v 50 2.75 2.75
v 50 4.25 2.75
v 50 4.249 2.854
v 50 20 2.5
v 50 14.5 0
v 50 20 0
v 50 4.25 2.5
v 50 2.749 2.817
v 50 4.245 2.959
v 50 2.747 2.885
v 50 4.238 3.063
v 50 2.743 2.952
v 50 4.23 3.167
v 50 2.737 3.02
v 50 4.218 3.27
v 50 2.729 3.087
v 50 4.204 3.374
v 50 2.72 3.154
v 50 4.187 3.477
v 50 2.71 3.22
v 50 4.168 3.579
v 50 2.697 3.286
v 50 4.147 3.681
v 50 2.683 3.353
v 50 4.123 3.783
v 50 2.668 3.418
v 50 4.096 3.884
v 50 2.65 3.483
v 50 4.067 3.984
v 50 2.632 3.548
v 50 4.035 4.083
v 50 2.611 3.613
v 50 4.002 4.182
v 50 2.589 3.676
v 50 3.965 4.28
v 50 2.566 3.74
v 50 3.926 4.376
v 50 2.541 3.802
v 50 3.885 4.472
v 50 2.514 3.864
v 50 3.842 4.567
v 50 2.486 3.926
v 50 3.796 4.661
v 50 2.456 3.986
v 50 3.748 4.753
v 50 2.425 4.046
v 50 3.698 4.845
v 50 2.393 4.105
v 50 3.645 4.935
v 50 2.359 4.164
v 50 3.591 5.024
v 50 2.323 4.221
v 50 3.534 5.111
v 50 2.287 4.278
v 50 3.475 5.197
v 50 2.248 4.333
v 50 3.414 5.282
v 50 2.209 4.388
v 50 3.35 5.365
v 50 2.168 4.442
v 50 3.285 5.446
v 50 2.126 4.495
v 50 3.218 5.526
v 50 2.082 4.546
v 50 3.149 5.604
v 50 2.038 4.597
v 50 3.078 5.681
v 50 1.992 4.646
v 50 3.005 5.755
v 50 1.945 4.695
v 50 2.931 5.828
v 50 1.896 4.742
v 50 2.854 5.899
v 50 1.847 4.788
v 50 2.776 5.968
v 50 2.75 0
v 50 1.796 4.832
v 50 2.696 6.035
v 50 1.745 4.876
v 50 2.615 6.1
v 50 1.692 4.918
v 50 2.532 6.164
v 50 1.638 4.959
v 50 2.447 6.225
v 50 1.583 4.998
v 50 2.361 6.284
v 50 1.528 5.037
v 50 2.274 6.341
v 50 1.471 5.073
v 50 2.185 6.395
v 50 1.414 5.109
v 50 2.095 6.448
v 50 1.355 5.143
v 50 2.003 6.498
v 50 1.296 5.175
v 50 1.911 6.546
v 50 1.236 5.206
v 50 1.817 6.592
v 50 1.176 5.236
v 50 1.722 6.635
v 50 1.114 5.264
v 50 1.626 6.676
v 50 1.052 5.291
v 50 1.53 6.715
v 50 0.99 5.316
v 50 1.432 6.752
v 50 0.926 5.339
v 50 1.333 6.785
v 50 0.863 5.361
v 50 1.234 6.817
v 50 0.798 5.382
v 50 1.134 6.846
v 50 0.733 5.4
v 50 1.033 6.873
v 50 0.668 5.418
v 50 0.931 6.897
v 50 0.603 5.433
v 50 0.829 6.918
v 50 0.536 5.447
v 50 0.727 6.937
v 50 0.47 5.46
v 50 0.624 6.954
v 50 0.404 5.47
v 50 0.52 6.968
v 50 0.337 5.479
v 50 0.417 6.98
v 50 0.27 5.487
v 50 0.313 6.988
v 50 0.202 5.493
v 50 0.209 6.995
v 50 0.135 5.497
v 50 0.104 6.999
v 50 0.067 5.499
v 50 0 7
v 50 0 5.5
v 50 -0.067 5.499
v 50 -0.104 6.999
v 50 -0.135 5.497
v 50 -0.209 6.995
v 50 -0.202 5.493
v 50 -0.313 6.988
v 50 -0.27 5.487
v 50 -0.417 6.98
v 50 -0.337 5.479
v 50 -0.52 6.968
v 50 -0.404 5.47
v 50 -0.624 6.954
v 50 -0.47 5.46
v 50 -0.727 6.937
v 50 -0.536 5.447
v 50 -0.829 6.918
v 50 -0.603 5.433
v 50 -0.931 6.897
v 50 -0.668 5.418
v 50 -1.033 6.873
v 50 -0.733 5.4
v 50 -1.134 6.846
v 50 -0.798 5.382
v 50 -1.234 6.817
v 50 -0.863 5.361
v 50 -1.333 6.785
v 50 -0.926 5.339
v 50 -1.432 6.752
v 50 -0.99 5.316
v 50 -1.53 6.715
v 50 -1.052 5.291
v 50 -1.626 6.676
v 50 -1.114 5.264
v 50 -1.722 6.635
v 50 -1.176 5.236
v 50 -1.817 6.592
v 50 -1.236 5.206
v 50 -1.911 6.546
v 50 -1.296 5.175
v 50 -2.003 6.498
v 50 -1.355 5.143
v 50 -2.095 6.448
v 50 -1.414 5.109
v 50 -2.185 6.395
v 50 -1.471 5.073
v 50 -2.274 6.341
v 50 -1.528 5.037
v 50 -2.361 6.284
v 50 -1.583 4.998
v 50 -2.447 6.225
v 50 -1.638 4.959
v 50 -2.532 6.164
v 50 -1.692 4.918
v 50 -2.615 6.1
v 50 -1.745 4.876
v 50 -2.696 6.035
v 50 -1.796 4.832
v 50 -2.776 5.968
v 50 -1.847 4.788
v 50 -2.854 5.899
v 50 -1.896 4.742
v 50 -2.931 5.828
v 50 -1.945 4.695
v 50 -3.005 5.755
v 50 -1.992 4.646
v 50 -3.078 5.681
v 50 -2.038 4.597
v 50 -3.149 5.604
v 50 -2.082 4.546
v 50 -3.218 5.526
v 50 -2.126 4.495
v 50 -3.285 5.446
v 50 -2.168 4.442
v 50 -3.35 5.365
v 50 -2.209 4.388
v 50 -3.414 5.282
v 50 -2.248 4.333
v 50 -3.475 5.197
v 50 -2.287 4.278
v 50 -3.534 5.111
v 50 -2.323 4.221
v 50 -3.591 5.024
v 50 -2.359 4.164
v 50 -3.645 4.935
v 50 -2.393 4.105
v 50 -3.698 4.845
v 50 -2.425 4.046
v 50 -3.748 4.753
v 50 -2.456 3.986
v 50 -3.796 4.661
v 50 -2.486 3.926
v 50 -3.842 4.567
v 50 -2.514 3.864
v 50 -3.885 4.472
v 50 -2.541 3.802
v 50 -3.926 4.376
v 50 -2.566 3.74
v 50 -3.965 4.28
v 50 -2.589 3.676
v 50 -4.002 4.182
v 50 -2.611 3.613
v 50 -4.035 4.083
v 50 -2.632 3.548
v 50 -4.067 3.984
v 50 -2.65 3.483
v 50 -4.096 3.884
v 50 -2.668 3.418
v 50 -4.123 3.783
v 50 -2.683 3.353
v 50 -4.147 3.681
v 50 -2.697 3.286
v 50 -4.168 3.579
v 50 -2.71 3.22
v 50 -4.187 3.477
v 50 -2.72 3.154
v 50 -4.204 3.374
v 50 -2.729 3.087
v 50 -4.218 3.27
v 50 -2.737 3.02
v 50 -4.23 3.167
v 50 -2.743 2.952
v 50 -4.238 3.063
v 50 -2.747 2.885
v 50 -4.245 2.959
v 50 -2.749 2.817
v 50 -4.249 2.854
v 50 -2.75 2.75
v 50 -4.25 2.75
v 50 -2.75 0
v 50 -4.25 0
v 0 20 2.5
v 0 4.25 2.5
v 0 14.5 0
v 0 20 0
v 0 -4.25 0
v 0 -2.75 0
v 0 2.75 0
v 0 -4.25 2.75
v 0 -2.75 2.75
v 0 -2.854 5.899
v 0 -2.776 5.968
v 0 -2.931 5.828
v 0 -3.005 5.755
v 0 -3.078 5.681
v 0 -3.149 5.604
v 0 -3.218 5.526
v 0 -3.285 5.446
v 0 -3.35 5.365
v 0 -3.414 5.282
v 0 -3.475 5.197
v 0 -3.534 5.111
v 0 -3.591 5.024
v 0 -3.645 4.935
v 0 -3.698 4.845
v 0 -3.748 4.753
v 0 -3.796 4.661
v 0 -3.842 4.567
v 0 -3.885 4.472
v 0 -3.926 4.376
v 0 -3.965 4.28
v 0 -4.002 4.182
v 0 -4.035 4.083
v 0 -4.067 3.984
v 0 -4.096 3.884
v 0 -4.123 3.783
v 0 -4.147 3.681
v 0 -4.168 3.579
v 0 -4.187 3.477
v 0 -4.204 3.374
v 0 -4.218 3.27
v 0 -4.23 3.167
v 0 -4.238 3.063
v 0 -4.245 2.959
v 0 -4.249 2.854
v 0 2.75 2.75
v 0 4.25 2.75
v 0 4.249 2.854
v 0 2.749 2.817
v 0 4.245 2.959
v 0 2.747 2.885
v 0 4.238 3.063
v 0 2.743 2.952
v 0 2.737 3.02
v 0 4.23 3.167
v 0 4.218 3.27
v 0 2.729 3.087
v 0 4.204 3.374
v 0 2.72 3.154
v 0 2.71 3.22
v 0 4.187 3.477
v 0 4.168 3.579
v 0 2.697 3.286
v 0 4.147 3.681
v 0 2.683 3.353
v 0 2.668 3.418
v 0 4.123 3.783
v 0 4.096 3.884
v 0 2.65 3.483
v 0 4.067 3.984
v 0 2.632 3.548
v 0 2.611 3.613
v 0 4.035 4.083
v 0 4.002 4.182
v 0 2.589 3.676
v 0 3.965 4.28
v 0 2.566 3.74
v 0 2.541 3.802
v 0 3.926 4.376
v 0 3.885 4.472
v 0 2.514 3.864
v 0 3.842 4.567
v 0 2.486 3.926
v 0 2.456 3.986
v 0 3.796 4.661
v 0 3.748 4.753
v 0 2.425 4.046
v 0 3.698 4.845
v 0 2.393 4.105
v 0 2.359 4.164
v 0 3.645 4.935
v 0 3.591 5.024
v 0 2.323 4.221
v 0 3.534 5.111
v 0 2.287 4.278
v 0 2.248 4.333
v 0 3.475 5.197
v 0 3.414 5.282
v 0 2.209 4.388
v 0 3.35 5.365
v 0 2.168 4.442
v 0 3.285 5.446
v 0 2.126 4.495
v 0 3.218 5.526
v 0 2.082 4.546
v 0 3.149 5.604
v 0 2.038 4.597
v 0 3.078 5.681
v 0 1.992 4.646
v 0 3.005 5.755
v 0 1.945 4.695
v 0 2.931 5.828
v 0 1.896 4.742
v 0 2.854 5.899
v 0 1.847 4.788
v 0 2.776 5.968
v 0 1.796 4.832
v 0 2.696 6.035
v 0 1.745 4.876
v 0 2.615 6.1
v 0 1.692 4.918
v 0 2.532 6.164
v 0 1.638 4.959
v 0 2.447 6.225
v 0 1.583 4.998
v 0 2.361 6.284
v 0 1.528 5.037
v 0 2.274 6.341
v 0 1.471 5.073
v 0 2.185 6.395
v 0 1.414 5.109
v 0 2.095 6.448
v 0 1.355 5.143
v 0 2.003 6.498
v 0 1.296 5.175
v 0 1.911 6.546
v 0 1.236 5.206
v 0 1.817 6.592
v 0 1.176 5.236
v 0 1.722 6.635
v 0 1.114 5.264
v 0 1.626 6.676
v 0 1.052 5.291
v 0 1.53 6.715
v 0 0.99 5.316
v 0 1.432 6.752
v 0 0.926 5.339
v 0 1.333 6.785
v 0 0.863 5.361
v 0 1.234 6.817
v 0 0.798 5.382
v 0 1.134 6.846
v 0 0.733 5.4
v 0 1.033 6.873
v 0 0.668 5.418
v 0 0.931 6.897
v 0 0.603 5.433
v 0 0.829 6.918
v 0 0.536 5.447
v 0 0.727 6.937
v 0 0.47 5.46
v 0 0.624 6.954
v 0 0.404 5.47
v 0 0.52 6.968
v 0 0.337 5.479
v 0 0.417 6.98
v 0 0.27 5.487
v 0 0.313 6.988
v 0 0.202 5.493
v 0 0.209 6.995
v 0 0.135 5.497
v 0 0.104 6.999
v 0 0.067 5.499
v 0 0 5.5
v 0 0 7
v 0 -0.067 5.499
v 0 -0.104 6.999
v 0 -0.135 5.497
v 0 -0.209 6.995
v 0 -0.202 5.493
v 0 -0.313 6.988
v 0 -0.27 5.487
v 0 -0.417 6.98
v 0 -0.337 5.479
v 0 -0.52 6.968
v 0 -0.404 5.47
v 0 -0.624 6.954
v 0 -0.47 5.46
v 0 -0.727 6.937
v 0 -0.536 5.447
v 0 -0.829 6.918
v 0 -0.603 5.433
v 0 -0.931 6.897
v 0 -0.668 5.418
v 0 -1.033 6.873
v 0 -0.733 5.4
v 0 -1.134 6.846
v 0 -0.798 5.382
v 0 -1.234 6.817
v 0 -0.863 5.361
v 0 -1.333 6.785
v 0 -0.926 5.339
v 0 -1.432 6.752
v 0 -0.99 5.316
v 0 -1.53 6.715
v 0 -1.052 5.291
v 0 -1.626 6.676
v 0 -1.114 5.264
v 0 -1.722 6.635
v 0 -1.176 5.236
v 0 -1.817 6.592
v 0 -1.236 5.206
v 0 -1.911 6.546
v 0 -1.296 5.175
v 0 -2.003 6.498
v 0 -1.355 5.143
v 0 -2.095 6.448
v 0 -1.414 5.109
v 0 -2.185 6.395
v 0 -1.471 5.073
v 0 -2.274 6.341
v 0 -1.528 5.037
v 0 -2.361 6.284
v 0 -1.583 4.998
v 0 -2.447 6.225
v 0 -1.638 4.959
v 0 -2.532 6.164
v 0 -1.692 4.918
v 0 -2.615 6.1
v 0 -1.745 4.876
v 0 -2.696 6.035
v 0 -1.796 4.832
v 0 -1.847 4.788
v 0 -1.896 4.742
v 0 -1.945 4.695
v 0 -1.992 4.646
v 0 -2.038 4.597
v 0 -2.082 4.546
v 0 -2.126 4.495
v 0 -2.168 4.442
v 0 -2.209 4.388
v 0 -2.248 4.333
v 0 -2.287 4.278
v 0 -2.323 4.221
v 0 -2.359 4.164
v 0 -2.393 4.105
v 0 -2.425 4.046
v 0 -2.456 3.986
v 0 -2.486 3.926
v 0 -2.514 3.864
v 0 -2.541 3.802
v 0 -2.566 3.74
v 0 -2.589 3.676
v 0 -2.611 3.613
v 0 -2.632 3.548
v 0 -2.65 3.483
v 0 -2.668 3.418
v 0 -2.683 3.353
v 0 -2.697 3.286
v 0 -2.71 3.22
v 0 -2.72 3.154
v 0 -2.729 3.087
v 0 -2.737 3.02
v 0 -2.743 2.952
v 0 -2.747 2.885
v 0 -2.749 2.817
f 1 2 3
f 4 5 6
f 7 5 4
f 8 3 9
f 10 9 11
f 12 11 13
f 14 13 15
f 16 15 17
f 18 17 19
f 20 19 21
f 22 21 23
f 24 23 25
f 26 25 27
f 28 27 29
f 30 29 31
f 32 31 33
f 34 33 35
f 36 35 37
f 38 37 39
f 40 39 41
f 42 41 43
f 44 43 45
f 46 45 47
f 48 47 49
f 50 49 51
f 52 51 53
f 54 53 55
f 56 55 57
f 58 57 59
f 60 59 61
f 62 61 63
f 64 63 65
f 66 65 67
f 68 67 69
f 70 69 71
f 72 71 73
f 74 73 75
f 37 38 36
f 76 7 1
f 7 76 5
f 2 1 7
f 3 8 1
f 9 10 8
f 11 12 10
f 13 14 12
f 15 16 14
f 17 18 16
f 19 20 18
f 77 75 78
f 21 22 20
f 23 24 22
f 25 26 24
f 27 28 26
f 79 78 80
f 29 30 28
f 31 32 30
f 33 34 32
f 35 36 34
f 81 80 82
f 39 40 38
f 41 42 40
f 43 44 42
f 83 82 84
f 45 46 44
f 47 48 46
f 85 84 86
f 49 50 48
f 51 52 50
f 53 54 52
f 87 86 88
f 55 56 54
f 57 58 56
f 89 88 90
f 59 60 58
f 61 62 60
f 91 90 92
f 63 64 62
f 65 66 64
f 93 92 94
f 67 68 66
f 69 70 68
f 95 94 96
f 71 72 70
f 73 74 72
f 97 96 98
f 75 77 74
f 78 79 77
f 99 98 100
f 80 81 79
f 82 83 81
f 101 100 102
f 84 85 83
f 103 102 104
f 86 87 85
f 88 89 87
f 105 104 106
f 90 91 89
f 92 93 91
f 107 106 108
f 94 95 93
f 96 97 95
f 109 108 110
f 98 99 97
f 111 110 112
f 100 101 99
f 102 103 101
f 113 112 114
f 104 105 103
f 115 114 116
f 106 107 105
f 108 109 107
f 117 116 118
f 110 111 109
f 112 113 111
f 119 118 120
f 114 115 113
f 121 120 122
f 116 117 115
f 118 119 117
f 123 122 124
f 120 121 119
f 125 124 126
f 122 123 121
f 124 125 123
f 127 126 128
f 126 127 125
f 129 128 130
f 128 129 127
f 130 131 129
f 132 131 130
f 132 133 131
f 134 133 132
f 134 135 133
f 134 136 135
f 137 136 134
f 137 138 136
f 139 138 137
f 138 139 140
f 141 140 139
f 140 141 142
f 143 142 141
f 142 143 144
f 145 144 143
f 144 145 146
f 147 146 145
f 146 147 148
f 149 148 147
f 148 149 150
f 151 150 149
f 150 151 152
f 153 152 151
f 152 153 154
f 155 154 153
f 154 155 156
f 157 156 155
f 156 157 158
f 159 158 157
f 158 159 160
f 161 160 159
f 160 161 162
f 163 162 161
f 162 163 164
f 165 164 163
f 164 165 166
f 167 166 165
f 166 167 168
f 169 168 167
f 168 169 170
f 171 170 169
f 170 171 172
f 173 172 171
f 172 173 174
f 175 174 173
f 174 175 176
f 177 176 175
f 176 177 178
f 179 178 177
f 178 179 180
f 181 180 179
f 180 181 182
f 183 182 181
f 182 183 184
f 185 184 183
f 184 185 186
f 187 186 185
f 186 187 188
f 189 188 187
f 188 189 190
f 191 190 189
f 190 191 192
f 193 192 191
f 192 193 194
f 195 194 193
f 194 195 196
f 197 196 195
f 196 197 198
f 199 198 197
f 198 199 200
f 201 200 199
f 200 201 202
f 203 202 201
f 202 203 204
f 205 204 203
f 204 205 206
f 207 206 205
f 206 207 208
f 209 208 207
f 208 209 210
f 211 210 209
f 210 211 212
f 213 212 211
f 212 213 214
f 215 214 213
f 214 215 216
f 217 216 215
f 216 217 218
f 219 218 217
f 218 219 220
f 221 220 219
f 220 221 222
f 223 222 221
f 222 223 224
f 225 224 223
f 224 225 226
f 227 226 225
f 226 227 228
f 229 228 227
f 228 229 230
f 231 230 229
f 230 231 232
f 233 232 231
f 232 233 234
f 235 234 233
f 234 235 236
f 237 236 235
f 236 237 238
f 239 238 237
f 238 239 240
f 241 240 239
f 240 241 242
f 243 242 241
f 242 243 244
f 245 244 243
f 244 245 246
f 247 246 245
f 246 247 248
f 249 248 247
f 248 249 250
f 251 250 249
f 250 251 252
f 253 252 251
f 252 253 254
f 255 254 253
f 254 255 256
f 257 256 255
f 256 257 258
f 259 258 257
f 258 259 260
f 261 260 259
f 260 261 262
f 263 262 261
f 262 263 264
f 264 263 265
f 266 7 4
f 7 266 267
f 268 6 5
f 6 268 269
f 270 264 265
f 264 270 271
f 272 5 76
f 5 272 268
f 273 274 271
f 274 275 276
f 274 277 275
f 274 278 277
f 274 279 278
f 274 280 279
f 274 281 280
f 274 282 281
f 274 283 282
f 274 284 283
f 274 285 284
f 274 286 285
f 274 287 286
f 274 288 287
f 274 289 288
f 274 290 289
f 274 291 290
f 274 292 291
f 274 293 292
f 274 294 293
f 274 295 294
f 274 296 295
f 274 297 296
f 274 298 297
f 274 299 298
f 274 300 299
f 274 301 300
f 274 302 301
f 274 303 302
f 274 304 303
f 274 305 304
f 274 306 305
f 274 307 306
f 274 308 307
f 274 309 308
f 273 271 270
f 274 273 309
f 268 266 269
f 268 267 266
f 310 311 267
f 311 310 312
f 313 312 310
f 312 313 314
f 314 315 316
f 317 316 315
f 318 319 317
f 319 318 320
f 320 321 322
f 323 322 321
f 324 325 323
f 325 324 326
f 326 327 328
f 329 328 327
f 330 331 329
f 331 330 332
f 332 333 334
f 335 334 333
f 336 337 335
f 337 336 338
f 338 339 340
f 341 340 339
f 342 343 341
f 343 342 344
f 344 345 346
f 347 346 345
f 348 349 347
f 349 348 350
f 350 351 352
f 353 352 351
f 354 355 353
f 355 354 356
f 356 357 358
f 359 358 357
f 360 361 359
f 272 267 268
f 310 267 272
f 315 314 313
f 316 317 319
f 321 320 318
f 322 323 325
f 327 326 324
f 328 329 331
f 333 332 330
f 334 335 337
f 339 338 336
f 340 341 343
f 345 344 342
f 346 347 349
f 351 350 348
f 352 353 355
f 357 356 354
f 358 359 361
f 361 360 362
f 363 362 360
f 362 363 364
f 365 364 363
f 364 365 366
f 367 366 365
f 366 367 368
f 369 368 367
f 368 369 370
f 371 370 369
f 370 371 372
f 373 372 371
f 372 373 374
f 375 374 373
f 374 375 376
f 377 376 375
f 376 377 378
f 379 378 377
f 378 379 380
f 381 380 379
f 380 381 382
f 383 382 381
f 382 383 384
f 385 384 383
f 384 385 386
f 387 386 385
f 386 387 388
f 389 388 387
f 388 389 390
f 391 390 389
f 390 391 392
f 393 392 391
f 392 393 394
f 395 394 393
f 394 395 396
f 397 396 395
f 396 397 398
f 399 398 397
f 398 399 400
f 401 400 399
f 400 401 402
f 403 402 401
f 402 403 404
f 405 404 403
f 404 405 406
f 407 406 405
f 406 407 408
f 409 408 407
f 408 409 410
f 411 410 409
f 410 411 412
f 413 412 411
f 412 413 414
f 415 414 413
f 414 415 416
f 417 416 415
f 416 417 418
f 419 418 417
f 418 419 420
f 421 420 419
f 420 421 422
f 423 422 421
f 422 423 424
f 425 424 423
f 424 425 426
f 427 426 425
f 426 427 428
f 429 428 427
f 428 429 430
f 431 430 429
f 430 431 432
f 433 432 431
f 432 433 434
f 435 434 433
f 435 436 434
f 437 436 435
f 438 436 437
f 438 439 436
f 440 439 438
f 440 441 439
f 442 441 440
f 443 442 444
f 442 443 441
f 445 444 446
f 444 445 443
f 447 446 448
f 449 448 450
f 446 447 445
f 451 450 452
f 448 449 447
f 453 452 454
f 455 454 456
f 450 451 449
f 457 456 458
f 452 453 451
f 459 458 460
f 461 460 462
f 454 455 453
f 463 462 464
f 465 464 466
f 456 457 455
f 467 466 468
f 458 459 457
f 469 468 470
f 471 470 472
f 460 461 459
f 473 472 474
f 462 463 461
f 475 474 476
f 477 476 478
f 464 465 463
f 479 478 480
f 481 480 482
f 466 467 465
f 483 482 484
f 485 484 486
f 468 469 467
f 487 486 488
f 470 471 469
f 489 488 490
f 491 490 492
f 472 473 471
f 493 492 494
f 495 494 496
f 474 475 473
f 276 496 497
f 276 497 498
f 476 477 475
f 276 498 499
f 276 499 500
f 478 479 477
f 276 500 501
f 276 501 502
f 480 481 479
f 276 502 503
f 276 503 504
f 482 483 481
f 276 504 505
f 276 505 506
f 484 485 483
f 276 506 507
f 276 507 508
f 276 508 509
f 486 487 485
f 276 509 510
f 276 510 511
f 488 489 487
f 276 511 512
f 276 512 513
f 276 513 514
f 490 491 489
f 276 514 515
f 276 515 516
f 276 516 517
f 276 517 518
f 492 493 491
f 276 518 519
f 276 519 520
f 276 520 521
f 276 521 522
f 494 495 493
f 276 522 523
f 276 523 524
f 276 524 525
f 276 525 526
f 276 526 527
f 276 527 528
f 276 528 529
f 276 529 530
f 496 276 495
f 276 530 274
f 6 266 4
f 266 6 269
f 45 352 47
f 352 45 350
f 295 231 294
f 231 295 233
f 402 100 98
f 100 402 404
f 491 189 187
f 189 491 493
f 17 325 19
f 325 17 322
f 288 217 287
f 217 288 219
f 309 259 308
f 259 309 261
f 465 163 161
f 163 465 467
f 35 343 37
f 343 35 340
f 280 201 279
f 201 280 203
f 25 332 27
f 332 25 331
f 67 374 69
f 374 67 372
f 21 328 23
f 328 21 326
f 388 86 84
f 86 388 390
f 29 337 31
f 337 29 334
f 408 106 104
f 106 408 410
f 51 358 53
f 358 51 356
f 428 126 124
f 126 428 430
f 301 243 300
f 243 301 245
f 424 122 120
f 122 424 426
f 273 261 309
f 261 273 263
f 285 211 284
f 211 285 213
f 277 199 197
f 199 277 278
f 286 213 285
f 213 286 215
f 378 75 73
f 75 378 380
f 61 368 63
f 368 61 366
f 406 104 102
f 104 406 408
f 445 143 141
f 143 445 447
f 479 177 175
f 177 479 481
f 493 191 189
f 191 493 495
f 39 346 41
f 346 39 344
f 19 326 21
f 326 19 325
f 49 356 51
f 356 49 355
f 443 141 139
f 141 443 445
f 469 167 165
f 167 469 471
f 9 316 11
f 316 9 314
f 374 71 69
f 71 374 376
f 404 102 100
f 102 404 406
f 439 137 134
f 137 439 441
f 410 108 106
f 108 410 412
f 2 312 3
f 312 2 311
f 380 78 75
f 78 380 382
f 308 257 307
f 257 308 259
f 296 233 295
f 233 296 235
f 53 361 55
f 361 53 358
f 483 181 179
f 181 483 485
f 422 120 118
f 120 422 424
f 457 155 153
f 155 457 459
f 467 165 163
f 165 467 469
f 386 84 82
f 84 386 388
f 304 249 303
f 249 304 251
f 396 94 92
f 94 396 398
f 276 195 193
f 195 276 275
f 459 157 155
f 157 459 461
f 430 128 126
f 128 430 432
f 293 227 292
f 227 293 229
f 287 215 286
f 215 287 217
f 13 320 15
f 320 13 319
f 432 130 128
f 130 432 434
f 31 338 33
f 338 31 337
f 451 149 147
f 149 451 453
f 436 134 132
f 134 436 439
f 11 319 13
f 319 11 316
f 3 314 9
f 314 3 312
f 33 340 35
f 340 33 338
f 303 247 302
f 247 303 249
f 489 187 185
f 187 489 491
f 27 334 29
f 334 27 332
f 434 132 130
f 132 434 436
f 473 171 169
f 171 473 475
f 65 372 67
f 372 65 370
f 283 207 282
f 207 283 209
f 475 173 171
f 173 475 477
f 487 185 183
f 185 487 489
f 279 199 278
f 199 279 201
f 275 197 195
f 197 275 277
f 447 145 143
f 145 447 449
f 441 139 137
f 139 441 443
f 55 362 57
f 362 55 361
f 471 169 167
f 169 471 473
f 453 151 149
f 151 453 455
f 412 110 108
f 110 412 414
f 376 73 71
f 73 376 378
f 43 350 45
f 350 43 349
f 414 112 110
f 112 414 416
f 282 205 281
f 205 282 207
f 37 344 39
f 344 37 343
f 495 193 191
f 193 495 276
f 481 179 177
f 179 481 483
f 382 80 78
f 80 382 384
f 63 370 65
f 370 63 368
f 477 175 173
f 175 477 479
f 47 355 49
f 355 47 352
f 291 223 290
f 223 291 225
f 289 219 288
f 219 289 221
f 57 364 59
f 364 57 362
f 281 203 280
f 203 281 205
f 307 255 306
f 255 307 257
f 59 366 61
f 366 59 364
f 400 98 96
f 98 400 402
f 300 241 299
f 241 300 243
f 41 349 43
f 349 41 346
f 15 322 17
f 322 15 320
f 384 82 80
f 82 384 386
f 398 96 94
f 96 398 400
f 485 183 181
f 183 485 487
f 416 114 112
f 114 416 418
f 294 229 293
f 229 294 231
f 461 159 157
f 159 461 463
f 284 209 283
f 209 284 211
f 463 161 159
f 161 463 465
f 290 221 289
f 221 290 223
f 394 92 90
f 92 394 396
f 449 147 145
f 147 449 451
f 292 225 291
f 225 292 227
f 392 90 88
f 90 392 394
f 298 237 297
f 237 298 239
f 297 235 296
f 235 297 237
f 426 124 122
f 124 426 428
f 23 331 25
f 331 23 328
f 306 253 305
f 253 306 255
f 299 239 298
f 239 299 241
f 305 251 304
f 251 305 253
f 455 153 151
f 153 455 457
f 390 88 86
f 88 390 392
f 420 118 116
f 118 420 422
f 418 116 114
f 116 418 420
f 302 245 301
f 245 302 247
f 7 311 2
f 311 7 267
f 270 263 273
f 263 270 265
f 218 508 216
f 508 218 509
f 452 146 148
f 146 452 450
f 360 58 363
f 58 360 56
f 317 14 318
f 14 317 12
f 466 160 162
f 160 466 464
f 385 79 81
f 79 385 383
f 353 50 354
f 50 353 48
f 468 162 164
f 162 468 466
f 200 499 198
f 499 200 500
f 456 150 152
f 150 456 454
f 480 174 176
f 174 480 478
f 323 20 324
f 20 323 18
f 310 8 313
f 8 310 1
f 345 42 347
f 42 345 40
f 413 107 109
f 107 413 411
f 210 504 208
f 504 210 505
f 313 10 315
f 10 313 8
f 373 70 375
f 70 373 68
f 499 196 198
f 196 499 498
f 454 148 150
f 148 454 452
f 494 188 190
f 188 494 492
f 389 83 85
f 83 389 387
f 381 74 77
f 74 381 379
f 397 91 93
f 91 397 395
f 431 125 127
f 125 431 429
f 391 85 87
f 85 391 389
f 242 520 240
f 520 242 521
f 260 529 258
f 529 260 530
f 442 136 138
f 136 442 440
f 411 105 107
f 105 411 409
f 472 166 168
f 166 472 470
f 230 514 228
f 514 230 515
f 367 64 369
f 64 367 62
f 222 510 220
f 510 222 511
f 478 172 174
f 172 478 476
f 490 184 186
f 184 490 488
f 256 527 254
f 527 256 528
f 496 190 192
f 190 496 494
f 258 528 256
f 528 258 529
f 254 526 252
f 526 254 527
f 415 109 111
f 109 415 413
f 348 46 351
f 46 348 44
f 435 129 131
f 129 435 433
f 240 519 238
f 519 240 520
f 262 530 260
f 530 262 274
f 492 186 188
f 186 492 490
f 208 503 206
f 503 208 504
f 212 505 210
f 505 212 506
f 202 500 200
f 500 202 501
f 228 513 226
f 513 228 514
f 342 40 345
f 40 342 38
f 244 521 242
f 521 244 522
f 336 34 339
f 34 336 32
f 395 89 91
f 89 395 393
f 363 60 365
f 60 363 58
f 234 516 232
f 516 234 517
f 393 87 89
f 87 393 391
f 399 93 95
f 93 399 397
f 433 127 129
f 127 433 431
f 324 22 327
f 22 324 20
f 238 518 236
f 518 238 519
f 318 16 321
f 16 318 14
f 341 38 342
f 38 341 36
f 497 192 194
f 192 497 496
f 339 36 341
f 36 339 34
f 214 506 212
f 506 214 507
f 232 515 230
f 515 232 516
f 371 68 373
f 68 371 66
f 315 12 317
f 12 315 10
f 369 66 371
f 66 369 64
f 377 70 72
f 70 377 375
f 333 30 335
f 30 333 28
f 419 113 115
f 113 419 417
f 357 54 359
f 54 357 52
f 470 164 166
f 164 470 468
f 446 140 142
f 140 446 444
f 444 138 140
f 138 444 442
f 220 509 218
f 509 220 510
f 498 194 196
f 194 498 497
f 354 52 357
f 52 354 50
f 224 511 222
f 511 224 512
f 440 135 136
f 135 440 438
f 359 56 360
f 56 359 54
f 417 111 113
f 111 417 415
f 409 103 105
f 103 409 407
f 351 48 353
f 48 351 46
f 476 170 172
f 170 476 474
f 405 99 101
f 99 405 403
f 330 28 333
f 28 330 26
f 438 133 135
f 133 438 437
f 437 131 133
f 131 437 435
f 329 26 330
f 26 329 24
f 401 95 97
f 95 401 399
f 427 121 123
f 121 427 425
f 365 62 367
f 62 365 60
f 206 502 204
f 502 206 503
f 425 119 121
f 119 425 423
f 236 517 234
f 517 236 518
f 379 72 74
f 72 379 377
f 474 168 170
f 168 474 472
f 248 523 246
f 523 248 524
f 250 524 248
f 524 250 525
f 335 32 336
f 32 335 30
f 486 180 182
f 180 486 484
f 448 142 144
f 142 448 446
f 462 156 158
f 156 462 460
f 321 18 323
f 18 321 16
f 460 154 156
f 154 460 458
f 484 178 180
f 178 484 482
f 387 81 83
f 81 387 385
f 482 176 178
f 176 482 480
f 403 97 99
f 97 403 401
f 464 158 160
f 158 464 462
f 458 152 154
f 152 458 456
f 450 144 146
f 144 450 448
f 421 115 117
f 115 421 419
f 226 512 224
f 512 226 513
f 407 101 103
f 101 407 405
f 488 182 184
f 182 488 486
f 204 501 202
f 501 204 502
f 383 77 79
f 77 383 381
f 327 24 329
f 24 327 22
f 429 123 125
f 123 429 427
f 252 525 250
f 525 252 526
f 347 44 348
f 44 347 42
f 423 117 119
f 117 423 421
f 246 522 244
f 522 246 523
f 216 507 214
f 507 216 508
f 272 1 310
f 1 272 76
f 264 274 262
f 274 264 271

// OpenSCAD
$fn = $preview ? 64 : 256;

CABLE_WIDTH = 5.5;

width = 50;
depth = 20;
thickness = 2.5;
thickness_wire = 1.5;

difference() {
	union() {
		cube([width, depth, thickness]);
		translate([0, 0, CABLE_WIDTH/2]) rotate([0, 90, 0]) cylinder(width, d=CABLE_WIDTH+thickness_wire*2);
		translate([0, -(CABLE_WIDTH/2+thickness_wire), 0]) cube([width, CABLE_WIDTH+thickness_wire*2, CABLE_WIDTH/2]);
	}

	translate([0, 0, CABLE_WIDTH/2]) rotate([0, 90, 0]) cylinder(width+1, d=CABLE_WIDTH);
	translate([0, -CABLE_WIDTH/2, 0]) cube([width+1, CABLE_WIDTH, CABLE_WIDTH/2]);
	translate([0, -CABLE_WIDTH, -thickness]) cube([width+1, depth, thickness]);
}
